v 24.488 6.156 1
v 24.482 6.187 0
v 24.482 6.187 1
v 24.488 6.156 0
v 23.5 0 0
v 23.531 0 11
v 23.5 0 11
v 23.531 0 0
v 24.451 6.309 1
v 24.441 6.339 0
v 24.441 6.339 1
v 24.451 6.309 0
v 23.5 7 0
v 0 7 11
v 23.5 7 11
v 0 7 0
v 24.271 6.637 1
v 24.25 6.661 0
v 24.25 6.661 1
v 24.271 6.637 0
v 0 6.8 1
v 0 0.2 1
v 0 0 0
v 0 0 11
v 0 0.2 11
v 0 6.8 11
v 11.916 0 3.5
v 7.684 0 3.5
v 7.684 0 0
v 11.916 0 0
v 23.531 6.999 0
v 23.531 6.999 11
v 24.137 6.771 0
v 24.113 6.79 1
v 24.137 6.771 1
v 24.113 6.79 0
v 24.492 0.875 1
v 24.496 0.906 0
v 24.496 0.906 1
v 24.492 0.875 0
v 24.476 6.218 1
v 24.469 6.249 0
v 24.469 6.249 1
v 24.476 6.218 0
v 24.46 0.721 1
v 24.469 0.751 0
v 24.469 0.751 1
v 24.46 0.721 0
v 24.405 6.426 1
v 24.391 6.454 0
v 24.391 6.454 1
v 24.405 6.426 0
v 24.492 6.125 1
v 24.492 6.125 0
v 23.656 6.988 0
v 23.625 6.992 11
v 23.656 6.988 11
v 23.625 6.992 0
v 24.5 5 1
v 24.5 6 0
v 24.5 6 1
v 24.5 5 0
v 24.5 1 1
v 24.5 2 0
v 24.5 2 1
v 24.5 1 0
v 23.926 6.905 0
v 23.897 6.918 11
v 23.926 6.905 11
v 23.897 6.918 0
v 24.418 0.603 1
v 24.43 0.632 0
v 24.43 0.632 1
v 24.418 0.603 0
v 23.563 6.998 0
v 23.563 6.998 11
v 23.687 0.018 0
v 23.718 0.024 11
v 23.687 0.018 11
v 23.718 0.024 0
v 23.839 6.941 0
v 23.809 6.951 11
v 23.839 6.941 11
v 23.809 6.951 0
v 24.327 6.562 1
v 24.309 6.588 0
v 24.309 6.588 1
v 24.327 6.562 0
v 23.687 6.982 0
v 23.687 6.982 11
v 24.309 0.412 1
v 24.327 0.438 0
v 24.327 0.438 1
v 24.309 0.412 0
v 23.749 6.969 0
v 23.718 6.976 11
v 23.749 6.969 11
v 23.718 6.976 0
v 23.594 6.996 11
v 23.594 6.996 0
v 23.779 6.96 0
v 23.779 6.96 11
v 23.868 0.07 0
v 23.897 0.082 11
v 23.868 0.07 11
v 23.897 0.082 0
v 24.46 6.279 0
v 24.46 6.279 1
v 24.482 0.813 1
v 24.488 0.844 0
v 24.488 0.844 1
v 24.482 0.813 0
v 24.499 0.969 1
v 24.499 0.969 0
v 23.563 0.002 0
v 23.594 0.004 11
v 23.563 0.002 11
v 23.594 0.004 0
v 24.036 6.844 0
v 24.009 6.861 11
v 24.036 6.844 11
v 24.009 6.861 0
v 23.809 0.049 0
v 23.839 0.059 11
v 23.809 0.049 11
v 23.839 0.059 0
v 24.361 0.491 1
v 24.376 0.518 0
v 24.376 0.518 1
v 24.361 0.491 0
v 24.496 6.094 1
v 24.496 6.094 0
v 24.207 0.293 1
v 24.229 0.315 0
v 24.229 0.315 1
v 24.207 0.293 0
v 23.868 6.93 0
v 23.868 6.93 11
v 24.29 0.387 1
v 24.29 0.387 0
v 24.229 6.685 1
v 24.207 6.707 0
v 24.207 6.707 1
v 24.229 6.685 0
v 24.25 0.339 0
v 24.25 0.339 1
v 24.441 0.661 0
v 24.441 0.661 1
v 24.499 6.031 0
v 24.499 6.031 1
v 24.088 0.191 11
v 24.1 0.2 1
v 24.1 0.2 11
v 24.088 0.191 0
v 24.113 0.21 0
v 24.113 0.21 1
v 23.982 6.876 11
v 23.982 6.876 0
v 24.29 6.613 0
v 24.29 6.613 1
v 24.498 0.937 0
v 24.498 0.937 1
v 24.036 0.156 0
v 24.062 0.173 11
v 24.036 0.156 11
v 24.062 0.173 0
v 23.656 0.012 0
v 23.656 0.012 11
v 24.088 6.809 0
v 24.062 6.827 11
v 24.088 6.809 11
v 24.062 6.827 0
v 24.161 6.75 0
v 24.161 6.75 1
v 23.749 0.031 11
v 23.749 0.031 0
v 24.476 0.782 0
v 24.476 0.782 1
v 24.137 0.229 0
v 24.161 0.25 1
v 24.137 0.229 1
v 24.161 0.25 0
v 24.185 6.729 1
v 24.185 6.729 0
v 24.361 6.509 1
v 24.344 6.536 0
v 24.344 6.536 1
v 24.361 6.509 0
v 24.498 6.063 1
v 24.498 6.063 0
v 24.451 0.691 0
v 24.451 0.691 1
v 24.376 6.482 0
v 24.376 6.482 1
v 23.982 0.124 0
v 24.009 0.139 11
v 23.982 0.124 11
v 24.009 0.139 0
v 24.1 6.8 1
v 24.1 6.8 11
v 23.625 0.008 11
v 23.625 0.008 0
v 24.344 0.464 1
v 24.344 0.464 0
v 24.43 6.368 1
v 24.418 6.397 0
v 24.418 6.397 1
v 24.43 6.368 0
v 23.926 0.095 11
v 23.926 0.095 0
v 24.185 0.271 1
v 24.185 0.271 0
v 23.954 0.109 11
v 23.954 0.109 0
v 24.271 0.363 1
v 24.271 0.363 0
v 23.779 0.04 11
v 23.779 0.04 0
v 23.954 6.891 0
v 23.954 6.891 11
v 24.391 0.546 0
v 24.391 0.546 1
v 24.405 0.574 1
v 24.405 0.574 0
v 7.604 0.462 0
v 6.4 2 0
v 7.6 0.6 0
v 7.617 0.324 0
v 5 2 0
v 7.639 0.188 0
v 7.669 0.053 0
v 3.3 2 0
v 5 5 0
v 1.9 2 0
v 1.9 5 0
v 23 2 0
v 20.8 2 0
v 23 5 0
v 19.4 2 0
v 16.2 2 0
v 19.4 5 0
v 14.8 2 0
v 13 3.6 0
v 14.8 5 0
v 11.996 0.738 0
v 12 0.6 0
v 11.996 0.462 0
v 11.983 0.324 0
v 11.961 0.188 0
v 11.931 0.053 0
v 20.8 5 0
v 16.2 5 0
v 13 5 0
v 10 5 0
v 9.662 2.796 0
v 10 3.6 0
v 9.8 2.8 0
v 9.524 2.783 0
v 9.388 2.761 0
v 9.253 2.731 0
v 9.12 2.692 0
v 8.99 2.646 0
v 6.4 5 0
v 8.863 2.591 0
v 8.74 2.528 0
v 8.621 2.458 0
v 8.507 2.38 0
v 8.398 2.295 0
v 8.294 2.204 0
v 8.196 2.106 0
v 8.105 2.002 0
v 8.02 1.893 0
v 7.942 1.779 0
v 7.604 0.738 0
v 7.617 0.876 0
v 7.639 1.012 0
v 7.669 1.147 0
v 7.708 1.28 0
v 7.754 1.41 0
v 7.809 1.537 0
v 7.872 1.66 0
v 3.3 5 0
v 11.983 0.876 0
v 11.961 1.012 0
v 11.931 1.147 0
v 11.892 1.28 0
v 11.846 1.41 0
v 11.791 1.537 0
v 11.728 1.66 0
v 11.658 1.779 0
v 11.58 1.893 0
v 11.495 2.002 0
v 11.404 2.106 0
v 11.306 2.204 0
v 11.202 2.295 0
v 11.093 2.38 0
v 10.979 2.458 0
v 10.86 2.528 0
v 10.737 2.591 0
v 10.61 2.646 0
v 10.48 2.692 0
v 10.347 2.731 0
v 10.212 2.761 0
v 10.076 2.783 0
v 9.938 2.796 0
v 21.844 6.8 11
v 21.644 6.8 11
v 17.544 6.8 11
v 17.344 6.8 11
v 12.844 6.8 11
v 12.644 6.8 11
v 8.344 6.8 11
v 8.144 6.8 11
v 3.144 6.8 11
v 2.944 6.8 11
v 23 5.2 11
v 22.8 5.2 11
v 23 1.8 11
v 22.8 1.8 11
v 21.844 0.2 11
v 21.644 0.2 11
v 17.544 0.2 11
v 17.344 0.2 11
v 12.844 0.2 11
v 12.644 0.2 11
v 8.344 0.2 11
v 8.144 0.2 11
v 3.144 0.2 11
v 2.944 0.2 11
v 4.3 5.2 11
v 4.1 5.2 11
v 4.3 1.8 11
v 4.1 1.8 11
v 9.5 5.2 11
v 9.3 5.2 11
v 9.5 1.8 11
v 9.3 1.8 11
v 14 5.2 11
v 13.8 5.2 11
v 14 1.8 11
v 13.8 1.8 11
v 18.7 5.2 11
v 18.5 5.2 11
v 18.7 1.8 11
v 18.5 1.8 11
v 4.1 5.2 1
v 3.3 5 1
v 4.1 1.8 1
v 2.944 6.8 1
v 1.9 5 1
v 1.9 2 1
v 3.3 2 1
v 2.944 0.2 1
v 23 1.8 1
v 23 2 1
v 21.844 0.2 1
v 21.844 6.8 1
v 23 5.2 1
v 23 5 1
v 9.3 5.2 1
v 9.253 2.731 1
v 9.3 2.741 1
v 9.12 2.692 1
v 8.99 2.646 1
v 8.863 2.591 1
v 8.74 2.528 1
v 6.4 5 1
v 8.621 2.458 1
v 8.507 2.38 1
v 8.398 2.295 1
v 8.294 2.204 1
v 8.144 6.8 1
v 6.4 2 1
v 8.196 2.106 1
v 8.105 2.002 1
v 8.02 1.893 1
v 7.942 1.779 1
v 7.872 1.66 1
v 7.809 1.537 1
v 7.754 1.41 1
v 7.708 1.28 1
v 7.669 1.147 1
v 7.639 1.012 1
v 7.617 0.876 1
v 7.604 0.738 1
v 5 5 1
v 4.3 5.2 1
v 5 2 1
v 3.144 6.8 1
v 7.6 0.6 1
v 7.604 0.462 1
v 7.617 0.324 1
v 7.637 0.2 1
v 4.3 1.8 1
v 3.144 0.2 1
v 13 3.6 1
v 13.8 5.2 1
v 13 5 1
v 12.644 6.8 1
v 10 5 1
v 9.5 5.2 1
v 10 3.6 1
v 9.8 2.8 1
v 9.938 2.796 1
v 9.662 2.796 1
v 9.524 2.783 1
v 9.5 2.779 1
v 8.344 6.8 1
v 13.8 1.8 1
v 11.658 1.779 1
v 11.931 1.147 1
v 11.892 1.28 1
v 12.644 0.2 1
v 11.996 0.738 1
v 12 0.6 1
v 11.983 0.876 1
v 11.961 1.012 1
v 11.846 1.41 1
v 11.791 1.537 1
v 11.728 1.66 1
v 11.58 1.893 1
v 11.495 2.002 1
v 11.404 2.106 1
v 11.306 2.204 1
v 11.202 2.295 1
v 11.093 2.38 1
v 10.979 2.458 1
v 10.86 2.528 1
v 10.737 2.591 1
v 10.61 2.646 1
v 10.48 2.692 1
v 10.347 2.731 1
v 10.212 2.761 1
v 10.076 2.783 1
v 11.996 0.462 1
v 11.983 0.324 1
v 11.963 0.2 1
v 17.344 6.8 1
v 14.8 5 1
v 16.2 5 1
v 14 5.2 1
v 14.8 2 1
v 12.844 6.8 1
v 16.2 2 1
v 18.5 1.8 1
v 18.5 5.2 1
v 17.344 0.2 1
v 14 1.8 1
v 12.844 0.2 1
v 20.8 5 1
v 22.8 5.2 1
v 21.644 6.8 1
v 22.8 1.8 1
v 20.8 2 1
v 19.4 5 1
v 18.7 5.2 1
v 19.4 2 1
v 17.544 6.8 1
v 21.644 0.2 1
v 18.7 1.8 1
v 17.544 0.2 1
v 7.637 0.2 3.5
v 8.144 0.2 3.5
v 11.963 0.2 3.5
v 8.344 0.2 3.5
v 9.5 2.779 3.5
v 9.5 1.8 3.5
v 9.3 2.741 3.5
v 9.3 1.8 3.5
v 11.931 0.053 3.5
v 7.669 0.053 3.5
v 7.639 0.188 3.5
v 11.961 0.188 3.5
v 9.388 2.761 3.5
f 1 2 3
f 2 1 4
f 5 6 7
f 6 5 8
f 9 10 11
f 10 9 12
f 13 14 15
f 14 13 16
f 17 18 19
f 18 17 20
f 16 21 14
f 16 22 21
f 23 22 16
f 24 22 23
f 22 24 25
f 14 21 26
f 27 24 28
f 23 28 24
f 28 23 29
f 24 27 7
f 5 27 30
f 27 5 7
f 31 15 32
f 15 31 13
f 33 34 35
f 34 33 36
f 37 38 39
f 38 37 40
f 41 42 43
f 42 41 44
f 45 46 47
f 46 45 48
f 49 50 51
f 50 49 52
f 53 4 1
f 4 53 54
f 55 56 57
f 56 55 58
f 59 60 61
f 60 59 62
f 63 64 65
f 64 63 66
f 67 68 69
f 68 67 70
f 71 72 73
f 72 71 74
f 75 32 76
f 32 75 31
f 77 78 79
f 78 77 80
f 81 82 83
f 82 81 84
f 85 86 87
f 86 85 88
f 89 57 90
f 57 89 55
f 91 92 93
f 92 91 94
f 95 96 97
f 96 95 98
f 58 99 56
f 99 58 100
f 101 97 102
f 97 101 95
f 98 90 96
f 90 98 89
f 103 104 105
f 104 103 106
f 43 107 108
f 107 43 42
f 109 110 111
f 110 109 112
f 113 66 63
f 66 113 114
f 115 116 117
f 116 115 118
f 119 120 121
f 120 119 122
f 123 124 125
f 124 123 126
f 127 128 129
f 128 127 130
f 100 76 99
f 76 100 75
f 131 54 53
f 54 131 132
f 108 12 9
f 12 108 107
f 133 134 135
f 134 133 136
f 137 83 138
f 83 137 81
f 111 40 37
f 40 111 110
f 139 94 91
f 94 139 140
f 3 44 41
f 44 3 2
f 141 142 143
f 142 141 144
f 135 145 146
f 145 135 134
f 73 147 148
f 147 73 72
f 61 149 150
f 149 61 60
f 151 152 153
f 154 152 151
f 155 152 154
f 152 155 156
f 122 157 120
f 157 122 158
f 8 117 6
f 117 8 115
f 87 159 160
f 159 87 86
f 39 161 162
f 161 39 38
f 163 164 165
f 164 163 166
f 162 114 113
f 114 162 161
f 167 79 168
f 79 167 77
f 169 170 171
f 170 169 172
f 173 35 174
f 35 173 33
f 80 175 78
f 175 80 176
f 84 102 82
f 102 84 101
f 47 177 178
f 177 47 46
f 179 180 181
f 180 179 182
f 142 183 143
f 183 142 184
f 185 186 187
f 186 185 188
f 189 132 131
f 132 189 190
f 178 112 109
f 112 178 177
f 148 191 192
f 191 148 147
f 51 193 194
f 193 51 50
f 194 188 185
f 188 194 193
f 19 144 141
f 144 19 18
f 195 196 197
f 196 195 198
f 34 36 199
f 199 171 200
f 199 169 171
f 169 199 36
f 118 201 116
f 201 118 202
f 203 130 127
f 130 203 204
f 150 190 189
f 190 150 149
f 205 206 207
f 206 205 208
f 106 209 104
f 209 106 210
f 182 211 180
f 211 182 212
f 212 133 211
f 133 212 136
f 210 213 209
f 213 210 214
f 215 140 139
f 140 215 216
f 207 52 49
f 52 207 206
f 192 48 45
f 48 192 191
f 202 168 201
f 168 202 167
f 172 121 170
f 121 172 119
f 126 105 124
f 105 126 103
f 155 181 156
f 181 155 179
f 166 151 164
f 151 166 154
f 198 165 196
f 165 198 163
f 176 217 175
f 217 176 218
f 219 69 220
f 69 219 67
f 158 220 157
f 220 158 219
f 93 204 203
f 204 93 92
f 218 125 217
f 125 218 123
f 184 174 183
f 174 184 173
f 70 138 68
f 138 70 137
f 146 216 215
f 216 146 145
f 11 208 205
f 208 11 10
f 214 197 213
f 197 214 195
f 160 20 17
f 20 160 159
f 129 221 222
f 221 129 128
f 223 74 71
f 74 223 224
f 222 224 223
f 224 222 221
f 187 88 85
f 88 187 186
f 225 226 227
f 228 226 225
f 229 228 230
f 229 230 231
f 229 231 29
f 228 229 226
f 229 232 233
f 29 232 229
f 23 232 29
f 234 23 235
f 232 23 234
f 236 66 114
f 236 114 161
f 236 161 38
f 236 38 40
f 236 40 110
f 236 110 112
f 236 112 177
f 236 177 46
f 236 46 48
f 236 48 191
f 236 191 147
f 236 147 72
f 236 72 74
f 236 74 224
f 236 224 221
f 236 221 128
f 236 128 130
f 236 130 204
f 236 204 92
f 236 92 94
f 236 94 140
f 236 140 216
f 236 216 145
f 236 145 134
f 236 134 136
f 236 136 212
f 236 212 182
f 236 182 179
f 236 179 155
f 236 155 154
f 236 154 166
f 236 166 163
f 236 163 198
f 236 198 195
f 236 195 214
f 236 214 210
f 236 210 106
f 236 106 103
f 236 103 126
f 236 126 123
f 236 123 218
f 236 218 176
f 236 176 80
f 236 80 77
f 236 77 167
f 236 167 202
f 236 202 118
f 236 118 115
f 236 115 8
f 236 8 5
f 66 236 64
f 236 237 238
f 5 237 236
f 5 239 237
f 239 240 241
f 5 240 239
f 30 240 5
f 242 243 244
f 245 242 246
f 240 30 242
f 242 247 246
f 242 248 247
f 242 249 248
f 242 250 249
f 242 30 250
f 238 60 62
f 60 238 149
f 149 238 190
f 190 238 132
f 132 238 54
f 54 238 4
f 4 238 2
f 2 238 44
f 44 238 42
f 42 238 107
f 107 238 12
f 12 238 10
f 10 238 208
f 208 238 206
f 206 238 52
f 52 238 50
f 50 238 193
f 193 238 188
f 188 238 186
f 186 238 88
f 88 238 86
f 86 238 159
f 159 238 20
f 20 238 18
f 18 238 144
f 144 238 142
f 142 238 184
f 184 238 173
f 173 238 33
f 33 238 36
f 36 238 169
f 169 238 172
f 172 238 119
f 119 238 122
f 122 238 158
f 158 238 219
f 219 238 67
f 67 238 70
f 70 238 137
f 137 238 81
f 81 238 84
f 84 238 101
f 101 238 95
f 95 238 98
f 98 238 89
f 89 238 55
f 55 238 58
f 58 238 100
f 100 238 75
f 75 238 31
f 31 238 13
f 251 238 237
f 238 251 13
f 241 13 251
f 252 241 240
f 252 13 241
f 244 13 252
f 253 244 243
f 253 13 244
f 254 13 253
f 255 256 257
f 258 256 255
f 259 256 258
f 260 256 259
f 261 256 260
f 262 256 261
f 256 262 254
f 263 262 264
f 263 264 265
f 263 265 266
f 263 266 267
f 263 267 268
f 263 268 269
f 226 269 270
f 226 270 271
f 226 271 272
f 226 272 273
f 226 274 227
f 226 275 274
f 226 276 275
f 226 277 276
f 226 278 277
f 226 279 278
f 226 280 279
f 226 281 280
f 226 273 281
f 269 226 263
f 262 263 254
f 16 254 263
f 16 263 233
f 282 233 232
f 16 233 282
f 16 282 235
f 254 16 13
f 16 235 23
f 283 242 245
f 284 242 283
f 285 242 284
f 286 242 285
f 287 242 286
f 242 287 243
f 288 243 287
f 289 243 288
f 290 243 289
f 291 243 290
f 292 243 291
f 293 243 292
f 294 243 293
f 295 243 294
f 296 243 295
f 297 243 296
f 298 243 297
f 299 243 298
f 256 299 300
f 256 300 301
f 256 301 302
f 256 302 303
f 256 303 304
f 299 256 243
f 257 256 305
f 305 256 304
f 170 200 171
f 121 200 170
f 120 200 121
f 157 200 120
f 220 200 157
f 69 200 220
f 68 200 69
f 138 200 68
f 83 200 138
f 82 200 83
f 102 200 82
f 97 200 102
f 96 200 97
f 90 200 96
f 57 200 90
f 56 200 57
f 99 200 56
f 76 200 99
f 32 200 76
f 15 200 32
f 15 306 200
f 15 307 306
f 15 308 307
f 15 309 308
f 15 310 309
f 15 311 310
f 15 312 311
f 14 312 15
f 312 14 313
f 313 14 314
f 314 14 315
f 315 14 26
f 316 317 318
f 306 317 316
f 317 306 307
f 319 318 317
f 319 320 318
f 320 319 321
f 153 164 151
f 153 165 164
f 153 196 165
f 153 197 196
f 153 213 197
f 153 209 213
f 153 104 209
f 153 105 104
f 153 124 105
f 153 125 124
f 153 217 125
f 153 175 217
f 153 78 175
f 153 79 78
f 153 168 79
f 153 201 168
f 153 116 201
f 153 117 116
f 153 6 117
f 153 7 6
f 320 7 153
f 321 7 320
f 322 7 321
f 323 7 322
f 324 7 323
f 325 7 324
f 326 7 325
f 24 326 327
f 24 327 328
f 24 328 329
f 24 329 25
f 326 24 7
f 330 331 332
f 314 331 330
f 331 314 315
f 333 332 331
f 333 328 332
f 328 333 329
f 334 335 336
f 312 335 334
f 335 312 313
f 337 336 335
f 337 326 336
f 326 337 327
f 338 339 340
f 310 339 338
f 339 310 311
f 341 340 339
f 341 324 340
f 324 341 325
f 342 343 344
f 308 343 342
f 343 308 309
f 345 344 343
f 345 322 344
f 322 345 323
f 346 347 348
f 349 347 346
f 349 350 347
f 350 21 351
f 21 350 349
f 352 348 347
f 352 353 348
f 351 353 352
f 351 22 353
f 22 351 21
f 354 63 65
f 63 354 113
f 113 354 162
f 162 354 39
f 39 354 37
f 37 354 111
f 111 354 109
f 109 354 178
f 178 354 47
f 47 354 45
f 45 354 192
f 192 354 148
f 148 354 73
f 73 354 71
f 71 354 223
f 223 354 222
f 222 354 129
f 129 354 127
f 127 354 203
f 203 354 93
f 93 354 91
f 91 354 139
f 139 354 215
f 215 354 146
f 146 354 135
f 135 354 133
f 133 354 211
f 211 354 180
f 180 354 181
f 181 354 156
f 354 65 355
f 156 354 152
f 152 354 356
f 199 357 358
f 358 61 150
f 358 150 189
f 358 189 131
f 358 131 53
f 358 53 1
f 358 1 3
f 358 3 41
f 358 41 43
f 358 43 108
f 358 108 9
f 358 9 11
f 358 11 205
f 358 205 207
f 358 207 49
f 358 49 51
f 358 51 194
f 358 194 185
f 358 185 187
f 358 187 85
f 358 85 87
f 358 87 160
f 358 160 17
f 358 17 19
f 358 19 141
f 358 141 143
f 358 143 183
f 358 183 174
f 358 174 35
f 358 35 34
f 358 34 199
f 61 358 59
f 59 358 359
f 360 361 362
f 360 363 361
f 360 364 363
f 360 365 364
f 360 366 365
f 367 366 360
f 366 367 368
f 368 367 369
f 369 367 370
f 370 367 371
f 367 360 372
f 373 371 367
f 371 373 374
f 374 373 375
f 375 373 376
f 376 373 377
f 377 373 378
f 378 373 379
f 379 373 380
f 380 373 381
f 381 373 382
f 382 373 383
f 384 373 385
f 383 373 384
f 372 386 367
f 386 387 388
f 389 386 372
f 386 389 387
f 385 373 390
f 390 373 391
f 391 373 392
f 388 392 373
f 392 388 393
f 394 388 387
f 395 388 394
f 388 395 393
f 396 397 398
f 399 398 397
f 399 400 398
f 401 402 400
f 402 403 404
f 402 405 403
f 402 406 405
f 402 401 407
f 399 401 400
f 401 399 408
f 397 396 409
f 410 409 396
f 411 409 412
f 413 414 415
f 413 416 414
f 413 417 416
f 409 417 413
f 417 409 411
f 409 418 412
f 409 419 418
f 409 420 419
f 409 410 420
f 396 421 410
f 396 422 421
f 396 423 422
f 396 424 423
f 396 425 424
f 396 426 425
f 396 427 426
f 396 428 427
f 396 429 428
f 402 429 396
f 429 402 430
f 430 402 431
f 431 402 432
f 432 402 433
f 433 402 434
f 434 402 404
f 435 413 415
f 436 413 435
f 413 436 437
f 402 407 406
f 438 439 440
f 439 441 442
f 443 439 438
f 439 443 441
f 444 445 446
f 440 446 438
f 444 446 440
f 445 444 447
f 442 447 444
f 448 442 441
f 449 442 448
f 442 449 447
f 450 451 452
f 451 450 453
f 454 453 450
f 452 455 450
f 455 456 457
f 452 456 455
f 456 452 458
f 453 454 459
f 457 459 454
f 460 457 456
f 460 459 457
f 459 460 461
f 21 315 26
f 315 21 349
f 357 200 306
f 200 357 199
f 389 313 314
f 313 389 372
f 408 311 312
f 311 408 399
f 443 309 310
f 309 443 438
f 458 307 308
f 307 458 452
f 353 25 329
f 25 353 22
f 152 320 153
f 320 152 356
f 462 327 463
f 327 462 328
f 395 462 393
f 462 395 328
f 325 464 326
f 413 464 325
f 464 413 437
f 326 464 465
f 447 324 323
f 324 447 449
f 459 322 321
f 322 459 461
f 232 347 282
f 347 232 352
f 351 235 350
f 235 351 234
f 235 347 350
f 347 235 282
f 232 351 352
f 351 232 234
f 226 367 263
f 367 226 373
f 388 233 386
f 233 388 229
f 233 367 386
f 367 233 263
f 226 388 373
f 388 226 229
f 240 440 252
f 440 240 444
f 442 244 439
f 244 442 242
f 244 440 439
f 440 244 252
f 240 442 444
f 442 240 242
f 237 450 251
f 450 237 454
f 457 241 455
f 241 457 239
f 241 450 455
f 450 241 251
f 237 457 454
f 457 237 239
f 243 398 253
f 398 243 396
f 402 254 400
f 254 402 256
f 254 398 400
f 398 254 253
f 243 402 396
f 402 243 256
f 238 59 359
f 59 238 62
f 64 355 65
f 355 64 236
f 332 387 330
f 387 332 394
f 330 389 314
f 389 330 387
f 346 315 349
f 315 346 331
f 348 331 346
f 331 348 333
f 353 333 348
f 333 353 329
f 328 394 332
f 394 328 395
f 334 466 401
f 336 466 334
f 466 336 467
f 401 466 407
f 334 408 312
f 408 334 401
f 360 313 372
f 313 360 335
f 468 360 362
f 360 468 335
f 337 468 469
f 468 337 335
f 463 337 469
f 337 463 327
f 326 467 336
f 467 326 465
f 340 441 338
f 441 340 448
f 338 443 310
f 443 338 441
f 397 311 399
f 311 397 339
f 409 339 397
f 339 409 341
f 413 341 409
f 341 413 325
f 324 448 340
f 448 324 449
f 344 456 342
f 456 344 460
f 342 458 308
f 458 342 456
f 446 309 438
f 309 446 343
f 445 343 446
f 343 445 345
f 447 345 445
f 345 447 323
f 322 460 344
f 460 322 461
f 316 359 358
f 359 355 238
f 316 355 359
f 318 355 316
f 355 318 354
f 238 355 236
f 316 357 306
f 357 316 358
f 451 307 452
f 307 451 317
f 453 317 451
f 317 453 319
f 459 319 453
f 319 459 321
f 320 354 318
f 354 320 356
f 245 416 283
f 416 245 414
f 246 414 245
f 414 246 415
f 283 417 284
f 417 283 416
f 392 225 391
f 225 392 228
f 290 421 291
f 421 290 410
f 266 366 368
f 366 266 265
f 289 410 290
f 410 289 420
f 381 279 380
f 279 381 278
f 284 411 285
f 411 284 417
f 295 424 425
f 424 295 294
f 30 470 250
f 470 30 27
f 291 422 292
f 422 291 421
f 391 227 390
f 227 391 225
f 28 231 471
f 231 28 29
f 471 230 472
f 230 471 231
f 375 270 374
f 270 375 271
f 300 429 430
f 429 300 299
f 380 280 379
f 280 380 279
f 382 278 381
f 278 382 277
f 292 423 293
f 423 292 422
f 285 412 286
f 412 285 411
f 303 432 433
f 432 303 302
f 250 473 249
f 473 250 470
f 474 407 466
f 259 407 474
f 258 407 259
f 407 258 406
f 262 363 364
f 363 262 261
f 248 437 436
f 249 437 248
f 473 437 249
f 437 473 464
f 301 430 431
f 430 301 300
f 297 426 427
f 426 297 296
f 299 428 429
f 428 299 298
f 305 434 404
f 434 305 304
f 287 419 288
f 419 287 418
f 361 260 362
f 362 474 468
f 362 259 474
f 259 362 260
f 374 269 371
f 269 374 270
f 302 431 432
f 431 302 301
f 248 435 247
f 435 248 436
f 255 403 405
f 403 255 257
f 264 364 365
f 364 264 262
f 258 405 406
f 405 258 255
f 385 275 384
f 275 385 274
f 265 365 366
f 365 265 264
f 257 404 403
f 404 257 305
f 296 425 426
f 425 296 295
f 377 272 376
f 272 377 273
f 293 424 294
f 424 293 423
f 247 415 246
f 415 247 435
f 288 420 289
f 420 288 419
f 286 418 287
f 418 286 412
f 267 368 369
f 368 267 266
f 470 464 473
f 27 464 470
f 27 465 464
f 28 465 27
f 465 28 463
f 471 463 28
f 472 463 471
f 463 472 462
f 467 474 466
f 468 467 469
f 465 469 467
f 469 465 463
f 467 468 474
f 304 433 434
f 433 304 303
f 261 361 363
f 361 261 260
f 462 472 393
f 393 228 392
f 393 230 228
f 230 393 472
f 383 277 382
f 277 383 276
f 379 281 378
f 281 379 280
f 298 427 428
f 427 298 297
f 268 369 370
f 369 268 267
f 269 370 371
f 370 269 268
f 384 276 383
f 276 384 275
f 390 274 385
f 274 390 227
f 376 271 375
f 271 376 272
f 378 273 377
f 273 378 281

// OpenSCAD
include <Round-Anything/polyround.scad>

module inlay() {
    w = 24.5;
    h = 7;
    e = 11;

    points=[
        [0, 0, 0],
        [w, 0, 1],
        [w, h, 1],
        [0, h, 0],
    ];

    difference() {
        union() {
            difference() {
                linear_extrude(e)
                    polygon(polyRound(points, 50));
                translate([0, 0.2, 1.0])
                    cube([w, h-0.4, e]);
                //translate([21.7, 0, 1.0])
                //    cube([3, h, e]);
                translate([2.6, h/2, 0])
                    cube([1.4, 3, 2], true);
                translate([5.7, h/2, 0])
                    cube([1.4, 3, 2], true);
                translate([15.5, h/2, 0])
                    cube([1.4, 3, 2], true);
                translate([20.1, h/2, 0])
                    cube([1.4, 3, 2], true);
                translate([11.5, 4.3, 0])
                    cube([3, 1.4, 2], true);
                translate([23.9, h/2, 0])
                    cube([2, 3, 2], true);
            }
            translate([2.8, 0, 0])
                separator(0.2, h, e);
            translate([8.0, 0, 0])
                separator(0.2, h, e);
            translate([12.5, 0, 0])
                separator(0.2, h, e);
            translate([17.2, 0, 0])
                separator(0.2, h, e);
            translate([21.5, 0, 0])
                separator(0.2, h, e);
        }
        translate([9.8, 0.6, 0])
            cylinder(3.5, r=2.2, $fn=100);
        //translate([0, 0, 1.0])
        //    cube([2.95, h, e]);        
    }

    module separator(w,h,e) {
        a = 1.3;
        b = 1.8;
        t = 0.2;
        linear_extrude(e)
            polygon([
                [0, 0],
                [w, 0],
                [w+a, b],
                [w+a, h-b],
                [w, h],
                [0, h],
                [a, h-b],
                [a, b]
            ]);
    }
}

inlay();
